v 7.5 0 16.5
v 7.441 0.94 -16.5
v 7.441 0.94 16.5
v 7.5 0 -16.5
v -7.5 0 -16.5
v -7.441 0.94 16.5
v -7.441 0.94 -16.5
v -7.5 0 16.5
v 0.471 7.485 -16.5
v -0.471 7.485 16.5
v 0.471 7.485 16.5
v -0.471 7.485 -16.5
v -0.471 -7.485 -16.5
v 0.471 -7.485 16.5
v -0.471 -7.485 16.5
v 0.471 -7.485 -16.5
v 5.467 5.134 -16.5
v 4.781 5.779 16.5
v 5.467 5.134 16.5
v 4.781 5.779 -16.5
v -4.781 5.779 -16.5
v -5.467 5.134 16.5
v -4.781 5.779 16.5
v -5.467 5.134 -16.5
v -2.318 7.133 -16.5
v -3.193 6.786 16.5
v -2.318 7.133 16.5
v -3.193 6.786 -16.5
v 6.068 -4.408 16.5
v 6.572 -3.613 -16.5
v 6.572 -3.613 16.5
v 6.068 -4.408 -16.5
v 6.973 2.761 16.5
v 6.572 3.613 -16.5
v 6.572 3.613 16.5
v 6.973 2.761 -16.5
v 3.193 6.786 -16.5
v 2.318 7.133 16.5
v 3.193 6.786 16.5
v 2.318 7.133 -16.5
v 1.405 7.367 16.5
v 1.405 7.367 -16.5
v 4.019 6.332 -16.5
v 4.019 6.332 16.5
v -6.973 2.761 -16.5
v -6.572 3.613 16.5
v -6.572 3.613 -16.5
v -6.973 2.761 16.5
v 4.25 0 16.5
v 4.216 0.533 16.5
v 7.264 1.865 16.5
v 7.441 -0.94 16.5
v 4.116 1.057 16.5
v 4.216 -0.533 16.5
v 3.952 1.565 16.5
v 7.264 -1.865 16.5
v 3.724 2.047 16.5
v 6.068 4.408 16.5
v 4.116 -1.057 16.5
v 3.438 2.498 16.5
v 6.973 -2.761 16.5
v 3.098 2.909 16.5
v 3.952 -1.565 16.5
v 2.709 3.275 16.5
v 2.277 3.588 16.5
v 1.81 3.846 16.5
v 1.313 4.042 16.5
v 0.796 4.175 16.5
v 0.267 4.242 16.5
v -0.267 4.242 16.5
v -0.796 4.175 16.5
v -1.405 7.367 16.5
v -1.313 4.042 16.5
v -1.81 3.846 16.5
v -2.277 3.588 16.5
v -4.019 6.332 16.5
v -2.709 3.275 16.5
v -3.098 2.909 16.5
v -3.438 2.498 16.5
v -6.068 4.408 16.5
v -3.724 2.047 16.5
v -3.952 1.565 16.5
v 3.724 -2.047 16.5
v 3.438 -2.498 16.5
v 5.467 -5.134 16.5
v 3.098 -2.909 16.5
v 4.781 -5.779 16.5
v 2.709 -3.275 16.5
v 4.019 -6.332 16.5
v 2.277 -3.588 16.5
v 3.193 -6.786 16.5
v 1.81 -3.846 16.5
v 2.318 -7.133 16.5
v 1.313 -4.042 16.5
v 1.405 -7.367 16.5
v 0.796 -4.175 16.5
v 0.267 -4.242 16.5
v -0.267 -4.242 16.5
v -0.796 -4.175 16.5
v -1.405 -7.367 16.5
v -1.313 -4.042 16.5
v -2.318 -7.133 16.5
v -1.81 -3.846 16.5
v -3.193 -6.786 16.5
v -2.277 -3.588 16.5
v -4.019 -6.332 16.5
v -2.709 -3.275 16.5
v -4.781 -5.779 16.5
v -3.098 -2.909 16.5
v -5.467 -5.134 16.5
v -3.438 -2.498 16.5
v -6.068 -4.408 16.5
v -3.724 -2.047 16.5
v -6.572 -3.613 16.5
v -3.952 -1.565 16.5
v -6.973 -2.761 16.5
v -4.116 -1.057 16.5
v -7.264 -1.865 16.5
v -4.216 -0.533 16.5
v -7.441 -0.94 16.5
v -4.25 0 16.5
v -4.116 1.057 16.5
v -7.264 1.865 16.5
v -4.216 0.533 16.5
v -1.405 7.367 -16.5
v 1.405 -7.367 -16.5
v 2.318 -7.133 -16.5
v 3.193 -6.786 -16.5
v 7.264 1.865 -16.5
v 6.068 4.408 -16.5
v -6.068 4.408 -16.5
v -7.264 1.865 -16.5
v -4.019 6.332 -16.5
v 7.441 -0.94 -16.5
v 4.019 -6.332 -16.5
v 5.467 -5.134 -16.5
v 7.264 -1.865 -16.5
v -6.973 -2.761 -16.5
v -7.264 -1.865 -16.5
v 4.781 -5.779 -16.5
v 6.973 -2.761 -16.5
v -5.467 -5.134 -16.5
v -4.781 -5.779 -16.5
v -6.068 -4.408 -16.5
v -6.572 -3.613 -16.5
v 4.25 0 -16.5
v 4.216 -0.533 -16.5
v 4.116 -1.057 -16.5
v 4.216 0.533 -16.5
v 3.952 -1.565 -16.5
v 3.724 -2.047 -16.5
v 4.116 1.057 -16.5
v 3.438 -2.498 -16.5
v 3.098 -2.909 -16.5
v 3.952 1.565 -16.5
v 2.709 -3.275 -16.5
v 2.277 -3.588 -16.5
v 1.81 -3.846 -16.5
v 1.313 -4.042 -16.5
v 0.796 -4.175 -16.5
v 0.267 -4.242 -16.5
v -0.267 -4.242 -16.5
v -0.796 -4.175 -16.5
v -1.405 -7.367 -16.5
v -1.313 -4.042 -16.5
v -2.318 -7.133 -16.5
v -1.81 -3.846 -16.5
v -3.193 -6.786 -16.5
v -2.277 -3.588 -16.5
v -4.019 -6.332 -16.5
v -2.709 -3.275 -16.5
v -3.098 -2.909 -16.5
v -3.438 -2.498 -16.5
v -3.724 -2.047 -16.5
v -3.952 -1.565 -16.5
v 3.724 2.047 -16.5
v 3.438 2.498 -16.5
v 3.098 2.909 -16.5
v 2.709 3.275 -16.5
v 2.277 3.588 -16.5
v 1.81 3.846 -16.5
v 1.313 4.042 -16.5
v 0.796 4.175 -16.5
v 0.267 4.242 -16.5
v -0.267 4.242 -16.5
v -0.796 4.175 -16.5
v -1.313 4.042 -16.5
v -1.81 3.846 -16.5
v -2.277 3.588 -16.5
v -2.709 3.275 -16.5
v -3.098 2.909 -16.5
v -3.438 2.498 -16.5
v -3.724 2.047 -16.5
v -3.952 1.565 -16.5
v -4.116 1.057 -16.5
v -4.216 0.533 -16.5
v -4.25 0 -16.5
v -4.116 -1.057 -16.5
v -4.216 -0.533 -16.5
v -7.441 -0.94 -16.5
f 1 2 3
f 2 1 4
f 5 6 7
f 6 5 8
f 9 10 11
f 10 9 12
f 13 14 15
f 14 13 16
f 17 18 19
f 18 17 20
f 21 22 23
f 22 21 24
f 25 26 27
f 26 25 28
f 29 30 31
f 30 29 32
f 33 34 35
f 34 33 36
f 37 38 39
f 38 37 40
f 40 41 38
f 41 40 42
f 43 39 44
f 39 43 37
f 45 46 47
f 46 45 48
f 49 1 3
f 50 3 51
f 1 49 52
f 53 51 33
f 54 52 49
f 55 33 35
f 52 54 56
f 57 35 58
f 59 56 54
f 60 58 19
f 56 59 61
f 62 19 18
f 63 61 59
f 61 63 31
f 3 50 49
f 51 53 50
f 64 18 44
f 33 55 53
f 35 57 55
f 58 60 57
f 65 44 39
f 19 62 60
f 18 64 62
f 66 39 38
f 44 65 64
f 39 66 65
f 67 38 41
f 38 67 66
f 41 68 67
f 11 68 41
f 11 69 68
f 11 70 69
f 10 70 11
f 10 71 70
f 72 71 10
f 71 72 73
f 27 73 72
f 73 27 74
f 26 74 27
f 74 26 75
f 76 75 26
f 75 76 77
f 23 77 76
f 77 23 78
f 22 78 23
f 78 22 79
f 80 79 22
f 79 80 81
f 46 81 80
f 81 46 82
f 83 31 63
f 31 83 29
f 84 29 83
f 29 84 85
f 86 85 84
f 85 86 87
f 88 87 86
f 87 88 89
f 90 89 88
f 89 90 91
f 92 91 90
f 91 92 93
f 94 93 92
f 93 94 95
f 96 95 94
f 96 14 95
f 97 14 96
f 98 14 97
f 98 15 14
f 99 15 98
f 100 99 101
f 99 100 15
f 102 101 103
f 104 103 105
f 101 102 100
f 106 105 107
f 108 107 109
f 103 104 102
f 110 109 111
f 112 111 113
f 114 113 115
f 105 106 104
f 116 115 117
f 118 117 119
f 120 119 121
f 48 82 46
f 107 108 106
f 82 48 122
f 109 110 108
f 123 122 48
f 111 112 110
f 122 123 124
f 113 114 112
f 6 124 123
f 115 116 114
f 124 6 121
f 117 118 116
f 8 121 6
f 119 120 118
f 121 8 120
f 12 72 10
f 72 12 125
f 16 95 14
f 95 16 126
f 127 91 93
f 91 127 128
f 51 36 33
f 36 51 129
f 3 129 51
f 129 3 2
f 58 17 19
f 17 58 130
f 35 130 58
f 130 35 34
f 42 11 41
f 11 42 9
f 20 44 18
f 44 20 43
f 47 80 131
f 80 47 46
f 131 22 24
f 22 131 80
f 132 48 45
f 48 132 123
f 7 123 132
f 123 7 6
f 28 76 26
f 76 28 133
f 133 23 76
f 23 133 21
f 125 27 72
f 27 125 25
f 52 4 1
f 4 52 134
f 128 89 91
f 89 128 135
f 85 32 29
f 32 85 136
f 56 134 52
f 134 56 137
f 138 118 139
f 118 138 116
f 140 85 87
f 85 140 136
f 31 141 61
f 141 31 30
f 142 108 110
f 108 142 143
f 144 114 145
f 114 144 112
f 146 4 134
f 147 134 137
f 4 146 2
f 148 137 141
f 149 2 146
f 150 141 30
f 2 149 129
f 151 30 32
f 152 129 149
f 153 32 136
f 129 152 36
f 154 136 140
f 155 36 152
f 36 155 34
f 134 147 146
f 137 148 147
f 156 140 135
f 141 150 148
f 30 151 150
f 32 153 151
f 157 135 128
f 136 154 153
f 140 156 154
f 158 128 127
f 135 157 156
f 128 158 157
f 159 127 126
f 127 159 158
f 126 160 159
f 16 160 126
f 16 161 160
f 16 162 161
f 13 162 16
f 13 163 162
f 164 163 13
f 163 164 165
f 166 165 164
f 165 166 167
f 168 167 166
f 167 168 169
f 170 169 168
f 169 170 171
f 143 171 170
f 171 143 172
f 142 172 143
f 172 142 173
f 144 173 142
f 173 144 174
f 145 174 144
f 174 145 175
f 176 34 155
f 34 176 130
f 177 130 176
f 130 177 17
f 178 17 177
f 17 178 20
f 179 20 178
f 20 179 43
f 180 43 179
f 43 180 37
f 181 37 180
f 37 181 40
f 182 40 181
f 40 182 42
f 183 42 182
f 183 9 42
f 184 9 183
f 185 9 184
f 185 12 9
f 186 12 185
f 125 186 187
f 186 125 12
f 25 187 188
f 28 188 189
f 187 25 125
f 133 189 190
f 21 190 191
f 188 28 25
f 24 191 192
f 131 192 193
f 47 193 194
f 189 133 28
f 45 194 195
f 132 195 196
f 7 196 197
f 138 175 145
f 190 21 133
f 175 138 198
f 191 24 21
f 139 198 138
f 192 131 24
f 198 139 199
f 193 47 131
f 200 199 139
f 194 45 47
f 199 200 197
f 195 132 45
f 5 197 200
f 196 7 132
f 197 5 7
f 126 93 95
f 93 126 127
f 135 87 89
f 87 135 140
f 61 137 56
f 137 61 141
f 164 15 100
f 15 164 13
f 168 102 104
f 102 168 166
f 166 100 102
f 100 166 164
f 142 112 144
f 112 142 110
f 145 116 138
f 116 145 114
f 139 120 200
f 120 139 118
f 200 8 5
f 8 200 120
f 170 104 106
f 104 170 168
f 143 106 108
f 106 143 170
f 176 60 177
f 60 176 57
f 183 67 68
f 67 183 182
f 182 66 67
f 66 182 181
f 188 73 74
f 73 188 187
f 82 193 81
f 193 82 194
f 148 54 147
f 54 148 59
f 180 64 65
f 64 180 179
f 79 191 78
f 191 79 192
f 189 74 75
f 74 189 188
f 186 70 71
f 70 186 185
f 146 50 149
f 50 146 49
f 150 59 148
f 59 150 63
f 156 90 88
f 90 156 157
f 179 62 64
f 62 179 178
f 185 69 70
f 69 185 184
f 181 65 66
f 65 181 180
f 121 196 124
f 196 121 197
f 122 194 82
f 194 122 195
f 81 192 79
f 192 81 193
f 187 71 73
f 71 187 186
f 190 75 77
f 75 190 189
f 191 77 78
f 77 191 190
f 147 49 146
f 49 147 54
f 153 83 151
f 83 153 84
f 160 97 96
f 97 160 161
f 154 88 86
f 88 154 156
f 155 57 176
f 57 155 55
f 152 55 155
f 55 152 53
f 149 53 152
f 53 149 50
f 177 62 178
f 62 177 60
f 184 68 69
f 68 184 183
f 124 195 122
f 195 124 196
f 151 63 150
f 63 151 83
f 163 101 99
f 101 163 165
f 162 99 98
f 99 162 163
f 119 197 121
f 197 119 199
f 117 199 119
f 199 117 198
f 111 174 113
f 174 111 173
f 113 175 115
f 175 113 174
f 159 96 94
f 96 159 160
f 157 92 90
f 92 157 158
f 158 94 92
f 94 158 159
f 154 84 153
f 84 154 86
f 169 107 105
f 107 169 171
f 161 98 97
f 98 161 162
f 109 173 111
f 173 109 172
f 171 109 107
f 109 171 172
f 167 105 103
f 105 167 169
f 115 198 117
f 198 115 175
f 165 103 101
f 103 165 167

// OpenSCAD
$fn = 50;


difference() {
	union() {
		translate(v = [0, 0, -16.5000000000]) {
			cylinder(h = 33, r = 7.5000000000);
		}
	}
	union() {
		translate(v = [0, 0, -100.0000000000]) {
			cylinder(h = 200, r = 4.2500000000);
		}
	}
}
